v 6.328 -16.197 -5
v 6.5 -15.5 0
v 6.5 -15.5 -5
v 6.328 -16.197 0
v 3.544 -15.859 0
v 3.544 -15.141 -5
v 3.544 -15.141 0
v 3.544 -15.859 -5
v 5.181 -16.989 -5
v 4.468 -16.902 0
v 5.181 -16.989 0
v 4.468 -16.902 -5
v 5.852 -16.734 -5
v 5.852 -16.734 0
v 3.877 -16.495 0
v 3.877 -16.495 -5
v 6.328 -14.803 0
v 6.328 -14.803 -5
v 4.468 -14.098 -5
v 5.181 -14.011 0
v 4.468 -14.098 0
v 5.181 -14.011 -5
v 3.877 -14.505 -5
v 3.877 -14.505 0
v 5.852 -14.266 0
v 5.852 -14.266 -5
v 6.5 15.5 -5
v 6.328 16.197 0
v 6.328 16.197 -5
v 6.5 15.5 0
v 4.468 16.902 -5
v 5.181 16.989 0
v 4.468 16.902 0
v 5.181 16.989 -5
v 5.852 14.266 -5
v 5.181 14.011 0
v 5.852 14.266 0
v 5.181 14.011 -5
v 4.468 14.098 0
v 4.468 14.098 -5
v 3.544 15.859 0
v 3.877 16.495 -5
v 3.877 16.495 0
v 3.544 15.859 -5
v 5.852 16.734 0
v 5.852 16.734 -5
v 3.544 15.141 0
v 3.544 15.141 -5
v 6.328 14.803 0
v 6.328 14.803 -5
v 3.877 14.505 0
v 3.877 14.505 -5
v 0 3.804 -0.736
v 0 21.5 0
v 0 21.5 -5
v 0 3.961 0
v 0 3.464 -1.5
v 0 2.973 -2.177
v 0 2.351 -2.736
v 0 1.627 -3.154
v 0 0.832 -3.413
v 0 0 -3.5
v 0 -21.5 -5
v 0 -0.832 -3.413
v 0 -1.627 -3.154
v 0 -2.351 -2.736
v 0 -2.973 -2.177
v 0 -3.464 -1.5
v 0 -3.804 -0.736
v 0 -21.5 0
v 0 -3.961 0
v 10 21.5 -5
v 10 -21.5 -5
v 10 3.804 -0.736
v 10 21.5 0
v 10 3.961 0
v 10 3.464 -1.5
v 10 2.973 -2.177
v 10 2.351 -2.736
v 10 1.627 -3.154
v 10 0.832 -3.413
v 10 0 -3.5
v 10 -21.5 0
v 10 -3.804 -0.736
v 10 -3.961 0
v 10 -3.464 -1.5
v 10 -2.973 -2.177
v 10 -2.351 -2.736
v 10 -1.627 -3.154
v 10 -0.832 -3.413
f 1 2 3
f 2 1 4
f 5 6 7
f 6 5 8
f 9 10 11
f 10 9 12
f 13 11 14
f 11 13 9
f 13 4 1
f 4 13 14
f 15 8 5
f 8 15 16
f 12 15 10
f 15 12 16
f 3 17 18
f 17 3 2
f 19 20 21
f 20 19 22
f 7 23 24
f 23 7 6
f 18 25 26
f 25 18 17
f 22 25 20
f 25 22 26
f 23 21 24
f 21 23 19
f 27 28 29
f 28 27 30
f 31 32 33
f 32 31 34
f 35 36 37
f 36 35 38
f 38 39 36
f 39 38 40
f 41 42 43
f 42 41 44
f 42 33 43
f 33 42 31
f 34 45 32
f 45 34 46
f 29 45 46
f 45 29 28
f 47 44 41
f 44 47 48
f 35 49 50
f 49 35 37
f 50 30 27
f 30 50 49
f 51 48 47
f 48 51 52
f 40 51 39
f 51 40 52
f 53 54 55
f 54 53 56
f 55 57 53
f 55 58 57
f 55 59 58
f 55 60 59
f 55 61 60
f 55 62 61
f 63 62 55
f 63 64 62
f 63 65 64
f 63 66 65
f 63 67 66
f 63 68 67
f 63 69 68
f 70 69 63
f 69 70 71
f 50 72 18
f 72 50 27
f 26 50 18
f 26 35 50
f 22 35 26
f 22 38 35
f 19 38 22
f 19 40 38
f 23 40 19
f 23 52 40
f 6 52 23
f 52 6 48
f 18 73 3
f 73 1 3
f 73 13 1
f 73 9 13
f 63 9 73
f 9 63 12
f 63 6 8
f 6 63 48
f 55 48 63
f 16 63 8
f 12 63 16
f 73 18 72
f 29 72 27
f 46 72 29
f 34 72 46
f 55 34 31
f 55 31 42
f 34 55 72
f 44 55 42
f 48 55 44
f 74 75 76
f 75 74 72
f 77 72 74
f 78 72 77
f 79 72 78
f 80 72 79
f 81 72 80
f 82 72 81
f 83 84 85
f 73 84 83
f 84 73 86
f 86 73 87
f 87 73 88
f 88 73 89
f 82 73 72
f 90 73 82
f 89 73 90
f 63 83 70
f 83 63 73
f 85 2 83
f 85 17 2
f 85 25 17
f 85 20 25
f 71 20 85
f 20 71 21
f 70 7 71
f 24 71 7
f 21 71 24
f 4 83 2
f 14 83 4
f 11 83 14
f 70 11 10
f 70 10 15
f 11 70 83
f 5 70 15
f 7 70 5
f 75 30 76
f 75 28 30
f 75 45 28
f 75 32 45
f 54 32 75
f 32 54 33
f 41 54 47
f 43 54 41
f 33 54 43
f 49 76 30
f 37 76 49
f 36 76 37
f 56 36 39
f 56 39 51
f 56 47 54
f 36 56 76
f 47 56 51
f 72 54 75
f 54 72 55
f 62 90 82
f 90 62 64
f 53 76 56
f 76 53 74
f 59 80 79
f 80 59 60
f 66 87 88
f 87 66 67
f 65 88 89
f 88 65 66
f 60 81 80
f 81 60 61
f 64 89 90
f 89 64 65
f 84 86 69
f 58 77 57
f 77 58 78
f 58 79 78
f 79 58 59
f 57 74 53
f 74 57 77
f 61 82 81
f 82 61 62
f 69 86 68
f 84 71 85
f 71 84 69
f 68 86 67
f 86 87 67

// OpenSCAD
$fs=.75;

rotate(a = [180, 0, 0]) {
	difference() {
		translate(v = [5.0000000000, 0, 2.5000000000]) {
			translate(v = [-5.0000000000, -21.5000000000, -2.5000000000]) {
				cube(size = [10, 43, 5.0000000000]);
			}
		}
		translate(v = [0, 0, -0.5000000000]) {
			rotate(a = [0, 90, 0]) {
				cylinder(d = 8.0000000000, h = 10);
			}
		}
		union() {
			translate(v = [5, 15.5000000000, 0]) {
				translate(v = [0, 0, -6.0000000000]) {
					cylinder(d = 3, h = 12);
				}
			}
			mirror(v = [0, 1, 0]) {
				translate(v = [5, 15.5000000000, 0]) {
					translate(v = [0, 0, -6.0000000000]) {
						cylinder(d = 3, h = 12);
					}
				}
			}
		}
	}
}
/***********************************************
*********      SolidPython code:      **********
************************************************
 
from solid import *
from solid import extensions

class Object:
    pass


rod=Object()
rod.d=8.0

nema17 = Object()
nema17.side = 43
nema17.holeDistance = 31.0
nema17.screwD=3

bearing = Object()
bearing.outD = 15.0
bearing.length = 24.0

# to place the rod supports on top of the nema17
supportDepth=10
xSupport = ( cube([supportDepth,nema17.side,rod.d/2+1]).align('left','bottom')
             - cylinder(d=rod.d, h=supportDepth).rot(y=90).move(z=-.5)
             - cylinder(d=nema17.screwD,h=12).center().move(x=5,y=nema17.holeDistance/2.).mirrorCopy('y')
           ).rot(x=180)


bearingShape = cylinder(d=bearing.outD, h= bearing.length+1).center()

#minimal y cart, z motor will be placed in between the rails
yRodDistance = 60.0 # rounding up from nema17.side + bearing.outD
wall=2.0
cartWidth = 2*bearing.length
yBearings = bearingShape.move(z=bearing.length/2).mirrorCopy('z').move(x=yRodDistance/2).mirrorCopy('x')
yCart = ( ( cylinder(d= bearing.outD + 2*wall, h= cartWidth).center().rot(x=90).move(x=yRodDistance/2).mirrorCopy('x')
          + cube([yRodDistance, cartWidth, bearing.outD/2+wall]).align('bottom').move(z=-bearing.outD/2-wall)
          + cube([yRodDistance+bearing.outD+2*wall, cartWidth, bearing.outD/2+wall]).align('top').move(z=bearing.outD/2+wall)

          ) - yBearings.rot(x=90)
            - cube([nema17.side, cartWidth, bearing.outD/2-3]).align('top')
            - cube([nema17.side, cartWidth, bearing.outD]).align('bottom')
            - cube([yRodDistance+20, cartWidth, 3]).align('bottom').move(z=-bearing.outD/2-wall)
            - cylinder(d=3,h=10).move([nema17.holeDistance/2, nema17.holeDistance/2, -bearing.outD/2]).mirrorCopy('x').mirrorCopy('y').debug()
            - cylinder(d=nema17.holeDistance, h =10).move(z=-bearing.outD/2)
          )



#supports for holding the y rods in from the x bearings
bearingCover = cylinder(d= bearing.outD + 2*wall, h= bearing.length).center().rot(y=90)
baseBlock = hull( bearingCover
                  + cube([bearing.outD+2,10,bearing.outD+2]).align('back').move(y=bearing.outD/2+wall))
capScrews = cylinder(d=3., h=bearing.outD + 2*wall).center().move(x=rod.d/2+3./2+1,y=12).mirrorCopy('x')
rodHole = cylinder(d=rod.d,h=10).rot(x=-90).move(y=bearing.outD/2+wall)
#capTopBase = cube([bearing.length, 11, bearing.outD]).center('x').move(y=bearing.outD/2+wall)
#capTopBase = polygon([[0,0],[0,10],[10,10],[10,-3]]).linear_extrude(bearing.length,True).rot(y=-90).move(y=bearing.outD/2+wall)
capTopBase = cube([bearing.length, 20, bearing.outD]).center('x')-bearingCover

baseSupport = baseBlock - rodHole - capScrews

ySupport = part(cylinder(d= bearing.outD + 2*wall, h= yRodDistance + bearing.length).center().rot(y=90)
                 - hole(cylinder(d= bearing.outD, h= yRodDistance + bearing.length).center().rot(y=90))
                 + ( baseSupport
                     * cube(50).align('top')
                   ).move(x=yRodDistance/2).mirrorCopy('x')
                 - cube(1000).align('top').move(z=-bearing.outD/2+1)
                 )

ySupportRodCap = ( baseSupport
                * capTopBase
                - cube([bearing.length,50,1]).align('bottom')
                - cube([bearing.length,10,10]).center('xy')
                )

#support for z rods placed on the falt surface of the yCart above the bearings
zRodDistance = 31.
rodSupport = (cylinder(d=rod.d + 3, h=6) - cylinder(d=rod.d, h=6+1)).move(y=zRodDistance / 2)
beltGuide = ( cube([bearing.outD, bearing.length-zRodDistance/2, 6]).center('x')
              - cylinder(d=rod.d + 6,h=6+1)
              - cube([1,20,6+1]).center('x')).move(y=zRodDistance/2)
zSupport = ( cube([bearing.outD,2*bearing.length,wall]).center('xy')
             + rodSupport.move(z=wall).mirrorCopy('y')
             + beltGuide.move(z=wall).mirrorCopy('y')
           )

zstepper = cube([nema17.side,nema17.side,34]).center('xy').move(z=-bearing.outD/2).color('gray')


yCartZSupport = yCart + zSupport.move(x=yRodDistance/2 ,z=bearing.outD/2)


scene = ( xSupport.move(x=-100)
          + ySupport + ySupportRodCap.move(x=-yRodDistance / 2, z=3)
          + (yCartZSupport ).move(y=50)
        )
scene = yCartZSupport

scad_render_to_file(scene, 'routerParts.scad', '$fs=.75;')

scad_render_to_file(xSupport, 'routerParts_xSupport.scad', '$fs=.75;')
scad_render_to_file(ySupport, 'routerParts_ySupport.scad', '$fs=.75;')
scad_render_to_file(ySupportRodCap, 'routerParts_ySupportCap.scad', '$fs=.75;')
scad_render_to_file(yCartZSupport, 'routerParts_yCart.scad', '$fs=.75;')
 
 
************************************************/
